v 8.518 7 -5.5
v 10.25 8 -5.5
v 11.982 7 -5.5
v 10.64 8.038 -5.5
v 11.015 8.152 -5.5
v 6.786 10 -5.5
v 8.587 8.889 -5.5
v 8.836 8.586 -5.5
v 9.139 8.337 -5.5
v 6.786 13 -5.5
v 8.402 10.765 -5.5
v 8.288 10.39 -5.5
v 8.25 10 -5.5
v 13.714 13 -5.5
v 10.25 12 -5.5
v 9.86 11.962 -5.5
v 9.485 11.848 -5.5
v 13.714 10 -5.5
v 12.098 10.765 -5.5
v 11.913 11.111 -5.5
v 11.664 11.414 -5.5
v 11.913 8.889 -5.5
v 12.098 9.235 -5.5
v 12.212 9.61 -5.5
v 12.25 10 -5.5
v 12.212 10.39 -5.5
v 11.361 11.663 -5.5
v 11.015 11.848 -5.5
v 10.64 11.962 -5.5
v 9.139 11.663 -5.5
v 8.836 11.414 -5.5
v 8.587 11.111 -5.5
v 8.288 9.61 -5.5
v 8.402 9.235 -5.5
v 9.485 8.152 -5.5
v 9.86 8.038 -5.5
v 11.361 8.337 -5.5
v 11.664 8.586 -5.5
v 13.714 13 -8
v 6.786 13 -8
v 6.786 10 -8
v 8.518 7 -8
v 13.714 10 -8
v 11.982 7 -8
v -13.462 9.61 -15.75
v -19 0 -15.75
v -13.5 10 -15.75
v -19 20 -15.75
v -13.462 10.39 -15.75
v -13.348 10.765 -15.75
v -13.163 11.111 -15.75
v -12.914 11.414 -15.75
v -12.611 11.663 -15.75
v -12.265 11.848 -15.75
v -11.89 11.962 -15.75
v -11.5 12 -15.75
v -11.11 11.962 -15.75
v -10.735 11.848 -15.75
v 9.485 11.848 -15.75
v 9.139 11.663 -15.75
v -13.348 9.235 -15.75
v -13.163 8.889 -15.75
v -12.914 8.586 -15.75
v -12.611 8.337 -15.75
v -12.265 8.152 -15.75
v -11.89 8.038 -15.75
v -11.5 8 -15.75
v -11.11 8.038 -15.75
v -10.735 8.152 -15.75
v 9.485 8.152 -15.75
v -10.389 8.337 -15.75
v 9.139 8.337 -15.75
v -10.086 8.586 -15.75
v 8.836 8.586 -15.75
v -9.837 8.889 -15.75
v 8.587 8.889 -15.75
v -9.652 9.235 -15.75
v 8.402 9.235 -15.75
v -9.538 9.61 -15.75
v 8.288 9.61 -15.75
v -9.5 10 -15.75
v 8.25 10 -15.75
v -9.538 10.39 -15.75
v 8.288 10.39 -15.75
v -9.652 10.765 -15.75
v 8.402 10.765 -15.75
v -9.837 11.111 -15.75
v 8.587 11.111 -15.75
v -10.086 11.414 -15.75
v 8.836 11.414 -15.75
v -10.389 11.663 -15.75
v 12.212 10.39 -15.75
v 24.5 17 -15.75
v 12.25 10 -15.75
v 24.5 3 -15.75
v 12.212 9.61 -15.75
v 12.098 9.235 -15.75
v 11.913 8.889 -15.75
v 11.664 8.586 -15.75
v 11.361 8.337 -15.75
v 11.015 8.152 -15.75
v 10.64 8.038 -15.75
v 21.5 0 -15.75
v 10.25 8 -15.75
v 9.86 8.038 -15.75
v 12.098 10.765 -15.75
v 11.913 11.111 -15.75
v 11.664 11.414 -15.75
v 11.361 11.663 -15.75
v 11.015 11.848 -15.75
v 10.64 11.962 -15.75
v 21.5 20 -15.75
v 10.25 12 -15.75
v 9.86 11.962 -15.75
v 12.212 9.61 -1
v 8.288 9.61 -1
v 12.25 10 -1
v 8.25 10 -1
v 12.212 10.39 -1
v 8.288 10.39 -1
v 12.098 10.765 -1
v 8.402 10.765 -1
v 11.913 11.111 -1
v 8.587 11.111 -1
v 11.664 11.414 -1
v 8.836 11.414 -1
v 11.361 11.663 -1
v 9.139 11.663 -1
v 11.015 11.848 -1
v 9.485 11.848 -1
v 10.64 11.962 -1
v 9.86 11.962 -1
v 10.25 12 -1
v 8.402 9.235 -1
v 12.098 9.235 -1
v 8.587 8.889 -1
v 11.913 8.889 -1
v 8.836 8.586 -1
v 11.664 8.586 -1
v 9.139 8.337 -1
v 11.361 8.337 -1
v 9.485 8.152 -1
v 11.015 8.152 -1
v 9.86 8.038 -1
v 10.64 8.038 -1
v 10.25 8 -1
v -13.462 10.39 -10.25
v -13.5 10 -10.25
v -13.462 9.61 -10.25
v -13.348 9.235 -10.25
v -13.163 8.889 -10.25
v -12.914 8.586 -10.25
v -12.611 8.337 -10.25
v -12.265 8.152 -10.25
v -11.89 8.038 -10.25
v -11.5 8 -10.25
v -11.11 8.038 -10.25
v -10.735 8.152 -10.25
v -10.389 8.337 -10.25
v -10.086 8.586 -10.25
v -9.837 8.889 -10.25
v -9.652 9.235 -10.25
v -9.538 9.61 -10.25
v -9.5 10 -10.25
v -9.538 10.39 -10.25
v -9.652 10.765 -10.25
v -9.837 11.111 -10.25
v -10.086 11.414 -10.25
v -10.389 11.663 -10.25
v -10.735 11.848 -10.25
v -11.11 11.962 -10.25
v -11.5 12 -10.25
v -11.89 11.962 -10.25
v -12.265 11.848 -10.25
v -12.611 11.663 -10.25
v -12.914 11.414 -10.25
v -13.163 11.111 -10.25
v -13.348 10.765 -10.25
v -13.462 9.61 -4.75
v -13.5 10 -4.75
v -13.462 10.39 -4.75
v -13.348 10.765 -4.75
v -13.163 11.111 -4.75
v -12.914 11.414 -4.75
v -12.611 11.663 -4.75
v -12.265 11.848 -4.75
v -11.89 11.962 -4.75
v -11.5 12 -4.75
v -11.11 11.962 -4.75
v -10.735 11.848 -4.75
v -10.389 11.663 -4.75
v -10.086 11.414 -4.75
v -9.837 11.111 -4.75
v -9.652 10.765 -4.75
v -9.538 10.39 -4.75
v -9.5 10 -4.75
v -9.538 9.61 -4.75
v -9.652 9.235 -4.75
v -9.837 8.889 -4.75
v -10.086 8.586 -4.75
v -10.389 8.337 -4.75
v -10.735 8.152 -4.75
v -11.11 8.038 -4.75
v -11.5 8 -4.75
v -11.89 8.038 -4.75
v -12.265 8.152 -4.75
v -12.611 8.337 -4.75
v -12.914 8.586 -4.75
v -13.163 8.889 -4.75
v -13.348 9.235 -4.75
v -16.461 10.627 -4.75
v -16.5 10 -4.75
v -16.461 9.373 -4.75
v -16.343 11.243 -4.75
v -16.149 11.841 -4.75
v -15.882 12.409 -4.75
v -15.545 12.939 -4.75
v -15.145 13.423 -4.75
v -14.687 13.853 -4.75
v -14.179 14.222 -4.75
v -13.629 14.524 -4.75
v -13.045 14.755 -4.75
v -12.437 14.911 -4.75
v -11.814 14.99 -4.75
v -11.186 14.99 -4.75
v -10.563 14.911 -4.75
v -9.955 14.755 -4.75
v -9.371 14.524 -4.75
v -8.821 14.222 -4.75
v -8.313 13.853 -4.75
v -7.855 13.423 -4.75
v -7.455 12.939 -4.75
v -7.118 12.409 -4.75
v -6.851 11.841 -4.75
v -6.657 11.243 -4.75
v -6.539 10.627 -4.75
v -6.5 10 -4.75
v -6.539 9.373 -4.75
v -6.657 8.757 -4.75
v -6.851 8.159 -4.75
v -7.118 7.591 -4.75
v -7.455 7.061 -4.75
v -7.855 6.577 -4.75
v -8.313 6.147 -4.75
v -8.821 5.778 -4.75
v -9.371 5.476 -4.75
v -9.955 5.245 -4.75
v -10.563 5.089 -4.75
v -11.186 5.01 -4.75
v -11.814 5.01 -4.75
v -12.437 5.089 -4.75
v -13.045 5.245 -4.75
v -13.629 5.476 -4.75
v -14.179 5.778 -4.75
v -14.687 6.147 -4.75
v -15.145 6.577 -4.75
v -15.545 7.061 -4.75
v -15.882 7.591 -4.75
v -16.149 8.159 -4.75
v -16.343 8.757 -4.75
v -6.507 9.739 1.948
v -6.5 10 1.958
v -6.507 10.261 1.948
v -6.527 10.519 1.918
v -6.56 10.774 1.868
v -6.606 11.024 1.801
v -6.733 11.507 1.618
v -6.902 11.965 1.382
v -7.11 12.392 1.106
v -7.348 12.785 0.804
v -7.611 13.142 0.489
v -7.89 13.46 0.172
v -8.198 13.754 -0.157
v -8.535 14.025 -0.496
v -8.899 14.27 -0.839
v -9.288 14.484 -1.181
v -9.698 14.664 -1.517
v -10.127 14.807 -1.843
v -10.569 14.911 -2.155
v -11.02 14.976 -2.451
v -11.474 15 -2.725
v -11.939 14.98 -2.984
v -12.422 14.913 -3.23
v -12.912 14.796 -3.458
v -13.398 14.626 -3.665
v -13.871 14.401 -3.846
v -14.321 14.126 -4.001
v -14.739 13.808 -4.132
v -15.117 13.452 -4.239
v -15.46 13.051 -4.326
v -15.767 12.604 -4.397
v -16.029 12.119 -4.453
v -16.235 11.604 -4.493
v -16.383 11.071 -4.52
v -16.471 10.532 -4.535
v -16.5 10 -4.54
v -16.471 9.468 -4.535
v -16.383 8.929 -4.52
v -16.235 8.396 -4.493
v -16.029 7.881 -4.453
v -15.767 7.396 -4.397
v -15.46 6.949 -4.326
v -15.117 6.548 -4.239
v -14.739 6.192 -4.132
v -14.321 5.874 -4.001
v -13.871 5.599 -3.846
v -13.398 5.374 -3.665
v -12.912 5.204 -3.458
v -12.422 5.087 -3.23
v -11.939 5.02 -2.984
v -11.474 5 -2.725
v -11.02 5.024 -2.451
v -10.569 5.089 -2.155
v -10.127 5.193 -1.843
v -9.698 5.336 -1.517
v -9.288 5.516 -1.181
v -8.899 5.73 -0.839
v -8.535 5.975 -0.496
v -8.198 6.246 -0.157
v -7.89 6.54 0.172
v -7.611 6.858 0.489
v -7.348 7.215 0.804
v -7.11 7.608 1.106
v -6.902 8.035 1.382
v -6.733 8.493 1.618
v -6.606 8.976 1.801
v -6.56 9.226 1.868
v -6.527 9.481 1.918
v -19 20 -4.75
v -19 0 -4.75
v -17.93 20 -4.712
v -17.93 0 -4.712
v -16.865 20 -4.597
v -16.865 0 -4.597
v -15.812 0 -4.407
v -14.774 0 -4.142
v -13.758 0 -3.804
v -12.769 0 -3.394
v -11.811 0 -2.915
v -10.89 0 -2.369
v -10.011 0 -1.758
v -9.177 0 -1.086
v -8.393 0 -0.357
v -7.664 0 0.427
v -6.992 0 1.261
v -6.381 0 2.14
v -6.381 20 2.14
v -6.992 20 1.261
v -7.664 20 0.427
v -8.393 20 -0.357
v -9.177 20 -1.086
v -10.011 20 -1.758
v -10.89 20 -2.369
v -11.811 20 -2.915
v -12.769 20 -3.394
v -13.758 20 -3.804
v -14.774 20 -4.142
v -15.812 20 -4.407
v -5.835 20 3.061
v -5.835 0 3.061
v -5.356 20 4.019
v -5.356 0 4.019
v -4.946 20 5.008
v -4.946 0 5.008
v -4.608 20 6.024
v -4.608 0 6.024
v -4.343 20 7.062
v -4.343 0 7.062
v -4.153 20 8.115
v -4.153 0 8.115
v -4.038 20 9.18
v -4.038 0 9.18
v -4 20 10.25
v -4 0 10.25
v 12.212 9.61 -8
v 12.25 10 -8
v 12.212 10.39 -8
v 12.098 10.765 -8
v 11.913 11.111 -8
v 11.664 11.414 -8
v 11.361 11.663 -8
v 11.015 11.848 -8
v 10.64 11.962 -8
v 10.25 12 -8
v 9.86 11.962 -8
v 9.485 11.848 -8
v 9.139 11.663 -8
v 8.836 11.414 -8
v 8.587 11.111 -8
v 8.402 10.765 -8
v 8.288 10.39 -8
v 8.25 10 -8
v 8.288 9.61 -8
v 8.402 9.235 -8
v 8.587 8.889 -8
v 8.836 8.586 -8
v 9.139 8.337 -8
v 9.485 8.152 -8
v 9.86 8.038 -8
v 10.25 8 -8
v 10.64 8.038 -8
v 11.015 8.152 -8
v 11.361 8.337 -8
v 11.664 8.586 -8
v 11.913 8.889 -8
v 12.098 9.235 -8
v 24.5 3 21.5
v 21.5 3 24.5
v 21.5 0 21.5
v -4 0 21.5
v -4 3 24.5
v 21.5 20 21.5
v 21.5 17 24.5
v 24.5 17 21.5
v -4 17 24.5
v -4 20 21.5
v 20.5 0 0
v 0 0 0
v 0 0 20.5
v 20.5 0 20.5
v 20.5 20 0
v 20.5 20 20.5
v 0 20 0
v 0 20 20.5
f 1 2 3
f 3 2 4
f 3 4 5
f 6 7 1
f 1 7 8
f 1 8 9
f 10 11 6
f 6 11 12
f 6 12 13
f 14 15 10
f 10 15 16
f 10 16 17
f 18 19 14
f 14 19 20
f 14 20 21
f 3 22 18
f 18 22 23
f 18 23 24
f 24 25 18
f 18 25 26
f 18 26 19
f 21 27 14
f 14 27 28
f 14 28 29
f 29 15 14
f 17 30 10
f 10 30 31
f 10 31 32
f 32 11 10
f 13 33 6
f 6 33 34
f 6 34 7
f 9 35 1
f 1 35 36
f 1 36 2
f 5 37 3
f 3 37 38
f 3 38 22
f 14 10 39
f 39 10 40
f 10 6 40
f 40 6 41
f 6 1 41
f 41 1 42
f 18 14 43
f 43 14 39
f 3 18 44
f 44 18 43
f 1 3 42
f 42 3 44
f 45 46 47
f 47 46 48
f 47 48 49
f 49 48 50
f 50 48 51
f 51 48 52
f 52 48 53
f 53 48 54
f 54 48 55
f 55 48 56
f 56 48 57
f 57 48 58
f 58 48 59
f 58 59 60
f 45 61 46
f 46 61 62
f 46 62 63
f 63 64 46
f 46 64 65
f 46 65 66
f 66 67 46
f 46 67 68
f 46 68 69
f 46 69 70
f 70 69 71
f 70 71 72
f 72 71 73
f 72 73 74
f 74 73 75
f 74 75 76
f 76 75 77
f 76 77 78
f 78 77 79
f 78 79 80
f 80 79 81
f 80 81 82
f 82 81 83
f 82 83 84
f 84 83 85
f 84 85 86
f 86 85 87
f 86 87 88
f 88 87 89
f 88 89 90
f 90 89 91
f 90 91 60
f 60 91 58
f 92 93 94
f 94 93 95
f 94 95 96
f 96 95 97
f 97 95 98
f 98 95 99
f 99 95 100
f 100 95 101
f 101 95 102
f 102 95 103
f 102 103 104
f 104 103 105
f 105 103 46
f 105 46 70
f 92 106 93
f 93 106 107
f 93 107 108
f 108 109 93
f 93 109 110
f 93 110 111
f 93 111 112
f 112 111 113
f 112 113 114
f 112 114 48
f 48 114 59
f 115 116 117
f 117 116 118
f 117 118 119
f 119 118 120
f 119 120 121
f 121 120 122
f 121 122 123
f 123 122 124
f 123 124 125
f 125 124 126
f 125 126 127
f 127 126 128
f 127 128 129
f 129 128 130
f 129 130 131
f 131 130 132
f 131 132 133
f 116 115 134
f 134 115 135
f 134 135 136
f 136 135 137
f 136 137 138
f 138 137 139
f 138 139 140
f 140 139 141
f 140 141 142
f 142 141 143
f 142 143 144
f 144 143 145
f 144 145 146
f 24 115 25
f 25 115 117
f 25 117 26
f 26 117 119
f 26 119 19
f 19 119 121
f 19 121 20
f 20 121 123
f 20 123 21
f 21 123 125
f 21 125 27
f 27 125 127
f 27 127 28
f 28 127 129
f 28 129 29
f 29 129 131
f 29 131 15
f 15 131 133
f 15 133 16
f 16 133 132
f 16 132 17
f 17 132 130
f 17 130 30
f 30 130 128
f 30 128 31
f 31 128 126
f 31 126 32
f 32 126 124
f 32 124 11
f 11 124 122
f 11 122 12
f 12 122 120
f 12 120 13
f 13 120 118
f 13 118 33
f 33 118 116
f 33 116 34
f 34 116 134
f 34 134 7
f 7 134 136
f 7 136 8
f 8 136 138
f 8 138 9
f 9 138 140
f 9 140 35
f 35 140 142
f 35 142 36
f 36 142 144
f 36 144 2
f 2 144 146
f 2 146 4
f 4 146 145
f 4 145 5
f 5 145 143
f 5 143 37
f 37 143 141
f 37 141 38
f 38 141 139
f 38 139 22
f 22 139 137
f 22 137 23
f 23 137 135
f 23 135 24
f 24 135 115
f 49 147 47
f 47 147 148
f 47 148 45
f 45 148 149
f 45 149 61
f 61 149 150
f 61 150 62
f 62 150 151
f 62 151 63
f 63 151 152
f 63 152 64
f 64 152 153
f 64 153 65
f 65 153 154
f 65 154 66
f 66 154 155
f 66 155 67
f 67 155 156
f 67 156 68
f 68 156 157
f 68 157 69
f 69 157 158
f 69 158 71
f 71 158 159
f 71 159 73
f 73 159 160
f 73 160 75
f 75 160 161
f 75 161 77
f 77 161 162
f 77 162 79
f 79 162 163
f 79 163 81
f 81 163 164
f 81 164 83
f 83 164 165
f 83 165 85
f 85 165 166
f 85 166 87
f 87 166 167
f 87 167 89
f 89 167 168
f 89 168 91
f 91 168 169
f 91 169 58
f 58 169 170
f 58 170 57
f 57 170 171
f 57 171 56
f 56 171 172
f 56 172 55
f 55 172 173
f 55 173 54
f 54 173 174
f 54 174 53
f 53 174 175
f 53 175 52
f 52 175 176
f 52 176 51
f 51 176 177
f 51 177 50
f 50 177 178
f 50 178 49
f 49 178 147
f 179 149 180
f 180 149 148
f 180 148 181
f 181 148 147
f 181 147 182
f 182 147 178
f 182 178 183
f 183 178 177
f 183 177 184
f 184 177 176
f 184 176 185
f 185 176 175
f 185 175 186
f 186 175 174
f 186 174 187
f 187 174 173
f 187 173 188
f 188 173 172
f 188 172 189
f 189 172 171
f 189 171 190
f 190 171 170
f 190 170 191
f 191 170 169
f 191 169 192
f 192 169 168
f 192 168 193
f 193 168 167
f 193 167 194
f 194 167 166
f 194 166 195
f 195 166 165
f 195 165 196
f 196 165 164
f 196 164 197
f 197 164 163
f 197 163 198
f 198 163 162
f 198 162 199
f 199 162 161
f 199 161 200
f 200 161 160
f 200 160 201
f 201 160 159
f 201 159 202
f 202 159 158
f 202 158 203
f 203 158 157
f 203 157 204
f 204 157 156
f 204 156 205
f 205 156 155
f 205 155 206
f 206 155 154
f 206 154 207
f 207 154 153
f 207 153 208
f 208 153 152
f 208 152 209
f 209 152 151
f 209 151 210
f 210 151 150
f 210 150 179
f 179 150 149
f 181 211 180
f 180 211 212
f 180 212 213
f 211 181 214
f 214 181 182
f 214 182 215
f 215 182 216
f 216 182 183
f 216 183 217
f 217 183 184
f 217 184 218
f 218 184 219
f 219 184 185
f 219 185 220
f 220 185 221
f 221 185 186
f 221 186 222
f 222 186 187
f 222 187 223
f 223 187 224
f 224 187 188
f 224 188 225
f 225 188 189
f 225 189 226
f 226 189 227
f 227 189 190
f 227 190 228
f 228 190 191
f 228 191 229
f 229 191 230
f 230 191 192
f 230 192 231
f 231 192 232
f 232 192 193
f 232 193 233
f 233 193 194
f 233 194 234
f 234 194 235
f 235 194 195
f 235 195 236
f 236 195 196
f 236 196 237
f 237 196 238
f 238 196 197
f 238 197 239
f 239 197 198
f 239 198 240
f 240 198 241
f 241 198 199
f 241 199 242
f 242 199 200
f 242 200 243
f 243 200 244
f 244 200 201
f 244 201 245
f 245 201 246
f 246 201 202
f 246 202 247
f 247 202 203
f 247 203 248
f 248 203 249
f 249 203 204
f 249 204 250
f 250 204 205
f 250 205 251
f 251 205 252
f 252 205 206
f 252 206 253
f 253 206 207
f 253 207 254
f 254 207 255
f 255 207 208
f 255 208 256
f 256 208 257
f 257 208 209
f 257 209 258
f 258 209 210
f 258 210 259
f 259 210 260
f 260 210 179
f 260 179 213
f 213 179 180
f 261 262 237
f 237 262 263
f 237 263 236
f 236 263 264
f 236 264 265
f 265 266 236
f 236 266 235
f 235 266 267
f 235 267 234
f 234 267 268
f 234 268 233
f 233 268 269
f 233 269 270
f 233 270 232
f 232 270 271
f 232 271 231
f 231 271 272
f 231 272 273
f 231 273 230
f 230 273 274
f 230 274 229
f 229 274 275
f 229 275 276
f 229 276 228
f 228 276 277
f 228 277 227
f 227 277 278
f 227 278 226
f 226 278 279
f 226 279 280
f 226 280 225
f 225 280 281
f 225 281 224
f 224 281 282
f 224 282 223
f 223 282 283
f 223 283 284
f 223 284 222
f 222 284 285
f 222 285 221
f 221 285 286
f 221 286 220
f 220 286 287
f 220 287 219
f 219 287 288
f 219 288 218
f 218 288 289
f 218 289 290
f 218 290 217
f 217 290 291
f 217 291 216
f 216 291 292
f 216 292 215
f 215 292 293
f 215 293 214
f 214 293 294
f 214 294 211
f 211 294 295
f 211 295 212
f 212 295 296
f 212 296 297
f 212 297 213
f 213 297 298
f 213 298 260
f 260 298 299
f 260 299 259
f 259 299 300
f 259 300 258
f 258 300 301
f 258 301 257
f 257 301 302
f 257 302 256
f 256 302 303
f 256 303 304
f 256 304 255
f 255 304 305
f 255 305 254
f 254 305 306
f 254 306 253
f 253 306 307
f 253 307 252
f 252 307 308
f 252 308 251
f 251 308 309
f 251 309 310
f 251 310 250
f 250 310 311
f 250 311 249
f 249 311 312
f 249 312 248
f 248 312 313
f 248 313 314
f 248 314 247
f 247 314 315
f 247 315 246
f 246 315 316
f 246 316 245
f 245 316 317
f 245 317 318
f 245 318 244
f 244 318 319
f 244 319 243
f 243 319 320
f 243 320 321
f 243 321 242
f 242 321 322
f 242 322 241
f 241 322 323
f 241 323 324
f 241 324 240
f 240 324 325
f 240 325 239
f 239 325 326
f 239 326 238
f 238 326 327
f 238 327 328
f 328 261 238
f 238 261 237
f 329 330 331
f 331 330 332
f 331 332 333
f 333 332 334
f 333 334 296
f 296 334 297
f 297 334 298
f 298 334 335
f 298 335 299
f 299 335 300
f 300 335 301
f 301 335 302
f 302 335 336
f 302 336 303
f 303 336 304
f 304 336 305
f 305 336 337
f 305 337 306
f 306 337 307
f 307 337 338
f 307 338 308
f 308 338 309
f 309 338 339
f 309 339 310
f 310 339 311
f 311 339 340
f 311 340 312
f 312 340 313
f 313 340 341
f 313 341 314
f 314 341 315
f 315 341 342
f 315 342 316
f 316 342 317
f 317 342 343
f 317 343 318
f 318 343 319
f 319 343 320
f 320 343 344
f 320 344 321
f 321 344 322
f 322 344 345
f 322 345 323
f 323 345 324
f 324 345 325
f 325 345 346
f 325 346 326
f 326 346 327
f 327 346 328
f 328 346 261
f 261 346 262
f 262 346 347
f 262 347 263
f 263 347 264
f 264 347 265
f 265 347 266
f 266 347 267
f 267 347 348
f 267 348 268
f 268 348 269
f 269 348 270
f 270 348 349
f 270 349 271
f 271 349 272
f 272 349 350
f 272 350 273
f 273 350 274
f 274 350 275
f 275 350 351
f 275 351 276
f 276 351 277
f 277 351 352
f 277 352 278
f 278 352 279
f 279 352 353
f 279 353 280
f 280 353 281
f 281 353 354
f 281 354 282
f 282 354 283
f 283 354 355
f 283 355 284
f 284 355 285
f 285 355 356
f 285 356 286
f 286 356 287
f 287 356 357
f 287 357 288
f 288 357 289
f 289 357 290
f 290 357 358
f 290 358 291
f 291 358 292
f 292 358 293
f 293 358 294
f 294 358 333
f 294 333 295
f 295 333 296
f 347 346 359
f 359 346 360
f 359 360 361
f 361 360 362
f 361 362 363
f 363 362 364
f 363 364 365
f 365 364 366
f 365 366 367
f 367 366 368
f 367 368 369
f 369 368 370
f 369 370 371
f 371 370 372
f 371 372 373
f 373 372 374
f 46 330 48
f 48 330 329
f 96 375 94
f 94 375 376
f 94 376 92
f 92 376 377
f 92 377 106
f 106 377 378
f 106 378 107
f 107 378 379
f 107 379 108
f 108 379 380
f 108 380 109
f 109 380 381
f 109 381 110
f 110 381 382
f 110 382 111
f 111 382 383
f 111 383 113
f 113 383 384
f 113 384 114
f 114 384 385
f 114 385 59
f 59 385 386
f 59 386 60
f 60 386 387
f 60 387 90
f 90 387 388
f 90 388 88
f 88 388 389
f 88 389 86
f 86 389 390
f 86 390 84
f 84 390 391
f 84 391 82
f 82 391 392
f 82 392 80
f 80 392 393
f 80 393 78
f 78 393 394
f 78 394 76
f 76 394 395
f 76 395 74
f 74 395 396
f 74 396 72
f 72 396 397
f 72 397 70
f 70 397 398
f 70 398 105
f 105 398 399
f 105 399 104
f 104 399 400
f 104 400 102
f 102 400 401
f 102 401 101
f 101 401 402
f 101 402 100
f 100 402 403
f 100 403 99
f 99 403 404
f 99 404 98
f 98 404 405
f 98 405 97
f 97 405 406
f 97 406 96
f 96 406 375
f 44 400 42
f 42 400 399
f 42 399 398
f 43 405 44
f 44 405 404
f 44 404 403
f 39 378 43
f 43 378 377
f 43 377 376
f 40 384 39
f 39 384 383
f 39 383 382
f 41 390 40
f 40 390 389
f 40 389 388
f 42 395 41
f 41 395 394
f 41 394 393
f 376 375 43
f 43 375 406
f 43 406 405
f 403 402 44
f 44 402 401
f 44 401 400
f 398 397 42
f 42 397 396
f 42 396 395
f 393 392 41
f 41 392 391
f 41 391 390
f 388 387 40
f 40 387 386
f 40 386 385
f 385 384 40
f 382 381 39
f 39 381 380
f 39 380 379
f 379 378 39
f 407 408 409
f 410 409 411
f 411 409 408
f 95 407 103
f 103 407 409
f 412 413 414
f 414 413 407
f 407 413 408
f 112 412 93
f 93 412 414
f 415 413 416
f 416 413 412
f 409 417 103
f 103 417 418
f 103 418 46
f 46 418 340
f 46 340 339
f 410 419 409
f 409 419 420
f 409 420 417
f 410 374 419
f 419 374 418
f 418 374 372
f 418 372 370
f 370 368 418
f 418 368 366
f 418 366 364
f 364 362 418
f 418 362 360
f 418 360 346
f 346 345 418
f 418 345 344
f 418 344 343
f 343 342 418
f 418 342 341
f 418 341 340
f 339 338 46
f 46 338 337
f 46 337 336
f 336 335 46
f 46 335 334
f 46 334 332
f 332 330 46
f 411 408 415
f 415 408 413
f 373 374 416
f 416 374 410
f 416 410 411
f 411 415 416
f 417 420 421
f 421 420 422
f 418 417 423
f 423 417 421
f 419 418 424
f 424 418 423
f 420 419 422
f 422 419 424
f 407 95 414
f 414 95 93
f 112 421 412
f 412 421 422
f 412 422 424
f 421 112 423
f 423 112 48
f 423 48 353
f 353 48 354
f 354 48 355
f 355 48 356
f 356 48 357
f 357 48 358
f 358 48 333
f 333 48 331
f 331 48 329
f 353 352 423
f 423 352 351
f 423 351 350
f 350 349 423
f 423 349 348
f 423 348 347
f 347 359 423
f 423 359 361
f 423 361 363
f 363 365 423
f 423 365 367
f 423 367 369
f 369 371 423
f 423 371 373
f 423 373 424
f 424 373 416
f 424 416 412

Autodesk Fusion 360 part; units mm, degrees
sketch "Sketch1" plane through (0, 0, 0) normal (0, 1, 0) x (1, 0, 0)
  line L0 (0, 0) -> (20.5, 0)
  line L1 (20.5, 0) -> (20.5, -20.5)
  line L2 (20.5, -20.5) -> (0, -20.5)
  line L3 (0, -20.5) -> (0, 0)
  line L4 (0, 0) -> (-4, 0)
  line L5 (-4, 0) -> (-4, 4)
  line L6 (-4, 4) -> (0, 4)
  line L7 (0, 4) -> (0, 0)
  line L8 (-4, 4) -> (24.5, 4)
  line L9 (24.5, 4) -> (24.5, -24.5)
  line L10 (24.5, -24.5) -> (-4, -24.5)
  line L11 (-4, -24.5) -> (-4, 4)
  dimension "d1" = 20.5
  dimension "d2" = 20.5
  dimension "d3" = 4
  dimension "d4" = 4
  dimension "d5" = 28.5
  dimension "d6" = 28.5
extrude "Extrude1" add sketch "Sketch1" along normal blind 20
chamfer "Chamfer1" distance 3 angle 45 5 edges at (24.5, 20, 10.25) (10.25, 20, 24.5) (24.5, 10, 24.5) (24.5, 0, 10.25) (10.25, 0, 24.5)
sketch "Sketch2" plane through (0, 0, -4) normal (0, 0, -1) x (-1, 0, 0)
  line L0 (-24.5, 3) -> (-21.5, 0)
  line L1 (-21.5, 0) -> (4, 0)
  line L2 (4, 0) -> (4, 20)
  line L3 (4, 20) -> (-21.5, 20)
  line L4 (-21.5, 20) -> (-24.5, 17)
  line L5 (-24.5, 17) -> (-24.5, 3)
  line L6 (-24.5, 10) -> (-10.25, 10)
  line L7 (-7.6519, 5.5) -> (-5.0538, 10)
  line L8 (-5.0538, 10) -> (-7.6519, 14.5)
  line L9 (-7.6519, 14.5) -> (-12.8481, 14.5)
  line L10 (-12.8481, 14.5) -> (-15.4462, 10)
  line L11 (-15.4462, 10) -> (-12.8481, 5.5)
  line L12 (-12.8481, 5.5) -> (-7.6519, 5.5)
  point P0 (-10.25, 10)
  dimension "d10" = 14.25
  dimension "d11" = 4.5
extrude "Extrude2" add sketch "Sketch2" along normal blind 4
sketch "Sketch3" plane through (0, 0, -8) normal (0, 0, -1) x (-1, 0, 0)
  line L0 (-7.6519, 5.5) -> (-12.8481, 5.5)
  line L1 (-15.4462, 10) -> (-12.8481, 14.5)
  line L2 (-12.8481, 14.5) -> (-7.6519, 14.5)
  line L3 (-7.6519, 14.5) -> (-5.0538, 10)
  line L4 (-5.0538, 10) -> (-7.6519, 5.5)
  line L5 (-24.5, 17) -> (-24.5, 3)
  line L6 (-24.5, 3) -> (-21.5, 0)
  line L7 (-21.5, 0) -> (4, 0)
  line L8 (4, 0) -> (4, 20)
  line L9 (4, 20) -> (-21.5, 20)
  line L10 (-21.5, 20) -> (-24.5, 17)
  line L11 (-7.6519, 14.5) -> (-5.0538, 14.5)
  line L12 (-5.0538, 14.5) -> (-5.0538, 10)
  line L13 (-15.4462, 10) -> (-15.4462, 14.5)
  line L14 (-15.4462, 14.5) -> (-12.8481, 14.5)
extrude "Extrude3" cut sketch "Sketch3" against normal blind 4 contours L1 L13 L14 | L3 L11 L12
sketch "Sketch4" plane through (0, 0, -8) normal (0, 0, -1) x (-1, 0, 0)
  line L0 (-15.4462, 14.5) -> (-5.0538, 14.5)
  line L1 (-5.0538, 14.5) -> (-5.0538, 10)
  line L2 (-5.0538, 10) -> (-7.6519, 5.5)
  line L3 (-7.6519, 5.5) -> (-12.8481, 5.5)
  line L4 (-12.8481, 5.5) -> (-15.4462, 10)
  line L5 (-15.4462, 10) -> (-15.4462, 14.5)
  line L6 (-24.5, 17) -> (-24.5, 3)
  line L7 (-24.5, 3) -> (-21.5, 0)
  line L8 (-21.5, 0) -> (4, 0)
  line L9 (4, 0) -> (4, 20)
  line L10 (4, 20) -> (-21.5, 20)
  line L11 (-21.5, 20) -> (-24.5, 17)
  line L12 (-10.25, 5.5) -> (-10.25, 10)
  circle A0 centre (-10.25, 10) radius 2
  line L13 (-5.0538, 14.5) -> (-15.4186, 14.5)
  line L14 (-15.4186, 14.5) -> (-15.4186, 5.5)
  line L15 (-15.4186, 5.5) -> (-5.0538, 5.5)
  line L16 (-5.0538, 5.5) -> (-5.0538, 14.5)
  line L17 (7, 22) -> (-27, 22)
  line L18 (-27, 22) -> (-27, -2)
  line L19 (-27, -2) -> (7, -2)
  line L20 (7, -2) -> (7, 22)
  dimension "d16" = 4
extrude "Extrude4" add sketch "Sketch4" along normal blind 5 contours L0 L1 L2 L3 L4 L13 L14 L15 L16 | L4 L14 L15 | L2 L15 L16 | L6 L7 L8 L9 L10 L11
extrude "Extrude5" add 1 faces at (0.0833, 10, -13) along direction (0, 0, -1) blind 1.75
sketch "Sketch5" plane through (-4, 0, 0) normal (-1, 0, 0) x (0, 0, 1)
  line L0 (21.5, 0) -> (24.5, 3)
  line L1 (24.5, 3) -> (24.5, 17)
  line L2 (24.5, 17) -> (21.5, 20)
  line L3 (21.5, 20) -> (-14.75, 20)
  line L4 (-14.75, 20) -> (-14.75, 0)
  line L5 (-14.75, 0) -> (21.5, 0)
  line L6 (-14.75, 20) -> (-4.75, 20)
  line L7 (-4.75, 20) -> (-4.75, 0)
  line L8 (-4.75, 0) -> (-14.75, 0)
  line L9 (-14.75, 0) -> (-14.75, 20)
  dimension "d21" = 10
extrude "Extrude6" add sketch "Sketch5" along normal blind 15 contours L3 L4 L5 L6 L7 L8 L9
sketch "Sketch6" plane through (0, 0, -4.75) normal (0, 0, 1) x (1, 0, 0)
  line L0 (-4, 0) -> (-4, 20)
  line L1 (-4, 20) -> (-19, 20)
  line L2 (-19, 20) -> (-19, 0)
  line L3 (-19, 0) -> (-4, 0)
  line L4 (-19, 10) -> (-11.5, 10)
  circle A0 centre (-11.5, 10) radius 3.5
  dimension "d24" = 7.5
  dimension "d25" = 7
extrude "Extrude7" cut sketch "Sketch6" against normal blind 10 contours A0
sketch "Sketch7" plane through (0, 0, 0) normal (0, -1, 0) x (1, 0, 0)
  line L0 (21.5, -14.75) -> (21.5, 21.5)
  line L1 (21.5, 21.5) -> (-4, 21.5)
  line L2 (-4, 21.5) -> (-4, -4.75)
  line L3 (-4, -4.75) -> (-19, -4.75)
  line L4 (-19, -4.75) -> (-19, -14.75)
  line L5 (-19, -14.75) -> (21.5, -14.75)
  line L6 (0, 20.5) -> (20.5, 20.5)
  line L7 (20.5, 20.5) -> (20.5, 0)
  line L8 (20.5, 0) -> (0, 0)
  line L9 (0, 0) -> (0, 20.5)
  line L10 (-19, -4.75) -> (-19, 10.25)
  circle A0 centre (-19, 10.25) radius 15
  dimension "d28" = 15
extrude "Extrude8" add sketch "Sketch7" against normal blind 20 contours L2 L3 A0
sketch "Sketch8" plane through (0, 0, -14.75) normal (0, 0, -1) x (-1, 0, 0)
  circle A0 centre (11.5, 10) radius 3.5
  line L0 (-15.4462, 14.5) -> (-15.4186, 14.5)
  line L1 (-15.4186, 14.5) -> (-15.4186, 9.9523)
  line L2 (-15.4186, 9.9523) -> (-15.4462, 10)
  line L3 (-15.4462, 10) -> (-15.4462, 14.5)
  circle A1 centre (-10.25, 10) radius 2
  line L4 (-21.5, 20) -> (-24.5, 17)
  line L5 (-24.5, 17) -> (-24.5, 3)
  line L6 (-24.5, 3) -> (-21.5, 0)
  line L7 (-21.5, 0) -> (19, 0)
  line L8 (19, 0) -> (19, 20)
  line L9 (19, 20) -> (-21.5, 20)
  circle A2 centre (11.5, 10) radius 5
  dimension "d31" = 10
extrude "Extrude9" cut sketch "Sketch8" along normal blind -10 and the other way blind 27 contours A2
extrude "Extrude10" cut 1 faces at (-11.9678, 9.7747, -4.75) along direction (0, 0, 1) blind 20
sketch "Sketch9" plane through (0, 0, -4.75) normal (0, 0, 1) x (1, 0, 0)
  circle A0 centre (-11.5, 10) radius 3.5
  circle A1 centre (-11.5, 10) radius 5
  circle A2 centre (-11.5, 10) radius 2
  dimension "d38" = 4
extrude "Extrude11" add sketch "Sketch9" against normal blind 10 contours A0
sketch "Sketch10" plane through (0, 0, -4) normal (0, 0, -1) x (-1, 0, 0)
  line L0 (-7.6519, 5.5) -> (-5.0538, 10)
  line L1 (-5.0538, 10) -> (-5.0538, 14.5)
  line L2 (-5.0538, 14.5) -> (-15.4462, 14.5)
  line L3 (-15.4462, 14.5) -> (-15.4462, 10)
  line L4 (-15.4462, 10) -> (-12.8481, 5.5)
  line L5 (-12.8481, 5.5) -> (-7.6519, 5.5)
  line L6 (-10.25, 5.5) -> (-10.25, 10)
  circle A0 centre (-10.25, 10) radius 2
  dimension "d41" = 4
extrude "Extrude12" cut sketch "Sketch10" against normal blind 3.5 contours A0
extrude "Extrude13" add 1 faces at (9.7539, 10.3541, -0.5) along direction (0, 0, -1) blind 0.5
extrude "Extrude14" add 1 faces at (3.9949, 17.2826, -14.75) along direction (0, 0, -1) blind 1
sketch "Sketch11" plane through (0, 0, -4) normal (0, 0, -1) x (-1, 0, 0)
  circle A0 centre (-10.25, 10) radius 2
  line L0 (-7.6519, 5.5) -> (-5.0538, 10)
  line L1 (-5.0538, 10) -> (-5.0538, 14.5)
  line L2 (-5.0538, 14.5) -> (-15.4462, 14.5)
  line L3 (-15.4462, 14.5) -> (-15.4462, 10)
  line L4 (-15.4462, 10) -> (-12.8481, 5.5)
  line L5 (-12.8481, 5.5) -> (-7.6519, 5.5)
  line L6 (-8.5179, 7) -> (-6.7859, 10)
  line L7 (-6.7859, 10) -> (-8.5179, 13)
  line L8 (-8.5179, 13) -> (-11.9821, 13)
  line L9 (-11.9821, 13) -> (-13.7141, 10)
  line L10 (-13.7141, 10) -> (-11.9821, 7)
  line L11 (-11.9821, 7) -> (-8.5179, 7)
  line L12 (-6.7859, 10) -> (-13.7141, 10)
  line L13 (-13.7141, 10) -> (-13.7141, 13)
  line L14 (-13.7141, 13) -> (-6.7859, 13)
  line L15 (-6.7859, 13) -> (-6.7859, 10)
  point P0 (-10.25, 10)
  dimension "d48" = 3
  dimension "d49" = 3
extrude "Extrude15" add sketch "Sketch11" along normal blind 5
extrude "Extrude16" add 1 faces at (13.16, 11.2893, -4) along direction (0, 0, -1) blind 1.5
extrude "Extrude17" add 1 faces at (15.4278, 11.4841, -9) along direction (0, 0, -1) blind 6.75
